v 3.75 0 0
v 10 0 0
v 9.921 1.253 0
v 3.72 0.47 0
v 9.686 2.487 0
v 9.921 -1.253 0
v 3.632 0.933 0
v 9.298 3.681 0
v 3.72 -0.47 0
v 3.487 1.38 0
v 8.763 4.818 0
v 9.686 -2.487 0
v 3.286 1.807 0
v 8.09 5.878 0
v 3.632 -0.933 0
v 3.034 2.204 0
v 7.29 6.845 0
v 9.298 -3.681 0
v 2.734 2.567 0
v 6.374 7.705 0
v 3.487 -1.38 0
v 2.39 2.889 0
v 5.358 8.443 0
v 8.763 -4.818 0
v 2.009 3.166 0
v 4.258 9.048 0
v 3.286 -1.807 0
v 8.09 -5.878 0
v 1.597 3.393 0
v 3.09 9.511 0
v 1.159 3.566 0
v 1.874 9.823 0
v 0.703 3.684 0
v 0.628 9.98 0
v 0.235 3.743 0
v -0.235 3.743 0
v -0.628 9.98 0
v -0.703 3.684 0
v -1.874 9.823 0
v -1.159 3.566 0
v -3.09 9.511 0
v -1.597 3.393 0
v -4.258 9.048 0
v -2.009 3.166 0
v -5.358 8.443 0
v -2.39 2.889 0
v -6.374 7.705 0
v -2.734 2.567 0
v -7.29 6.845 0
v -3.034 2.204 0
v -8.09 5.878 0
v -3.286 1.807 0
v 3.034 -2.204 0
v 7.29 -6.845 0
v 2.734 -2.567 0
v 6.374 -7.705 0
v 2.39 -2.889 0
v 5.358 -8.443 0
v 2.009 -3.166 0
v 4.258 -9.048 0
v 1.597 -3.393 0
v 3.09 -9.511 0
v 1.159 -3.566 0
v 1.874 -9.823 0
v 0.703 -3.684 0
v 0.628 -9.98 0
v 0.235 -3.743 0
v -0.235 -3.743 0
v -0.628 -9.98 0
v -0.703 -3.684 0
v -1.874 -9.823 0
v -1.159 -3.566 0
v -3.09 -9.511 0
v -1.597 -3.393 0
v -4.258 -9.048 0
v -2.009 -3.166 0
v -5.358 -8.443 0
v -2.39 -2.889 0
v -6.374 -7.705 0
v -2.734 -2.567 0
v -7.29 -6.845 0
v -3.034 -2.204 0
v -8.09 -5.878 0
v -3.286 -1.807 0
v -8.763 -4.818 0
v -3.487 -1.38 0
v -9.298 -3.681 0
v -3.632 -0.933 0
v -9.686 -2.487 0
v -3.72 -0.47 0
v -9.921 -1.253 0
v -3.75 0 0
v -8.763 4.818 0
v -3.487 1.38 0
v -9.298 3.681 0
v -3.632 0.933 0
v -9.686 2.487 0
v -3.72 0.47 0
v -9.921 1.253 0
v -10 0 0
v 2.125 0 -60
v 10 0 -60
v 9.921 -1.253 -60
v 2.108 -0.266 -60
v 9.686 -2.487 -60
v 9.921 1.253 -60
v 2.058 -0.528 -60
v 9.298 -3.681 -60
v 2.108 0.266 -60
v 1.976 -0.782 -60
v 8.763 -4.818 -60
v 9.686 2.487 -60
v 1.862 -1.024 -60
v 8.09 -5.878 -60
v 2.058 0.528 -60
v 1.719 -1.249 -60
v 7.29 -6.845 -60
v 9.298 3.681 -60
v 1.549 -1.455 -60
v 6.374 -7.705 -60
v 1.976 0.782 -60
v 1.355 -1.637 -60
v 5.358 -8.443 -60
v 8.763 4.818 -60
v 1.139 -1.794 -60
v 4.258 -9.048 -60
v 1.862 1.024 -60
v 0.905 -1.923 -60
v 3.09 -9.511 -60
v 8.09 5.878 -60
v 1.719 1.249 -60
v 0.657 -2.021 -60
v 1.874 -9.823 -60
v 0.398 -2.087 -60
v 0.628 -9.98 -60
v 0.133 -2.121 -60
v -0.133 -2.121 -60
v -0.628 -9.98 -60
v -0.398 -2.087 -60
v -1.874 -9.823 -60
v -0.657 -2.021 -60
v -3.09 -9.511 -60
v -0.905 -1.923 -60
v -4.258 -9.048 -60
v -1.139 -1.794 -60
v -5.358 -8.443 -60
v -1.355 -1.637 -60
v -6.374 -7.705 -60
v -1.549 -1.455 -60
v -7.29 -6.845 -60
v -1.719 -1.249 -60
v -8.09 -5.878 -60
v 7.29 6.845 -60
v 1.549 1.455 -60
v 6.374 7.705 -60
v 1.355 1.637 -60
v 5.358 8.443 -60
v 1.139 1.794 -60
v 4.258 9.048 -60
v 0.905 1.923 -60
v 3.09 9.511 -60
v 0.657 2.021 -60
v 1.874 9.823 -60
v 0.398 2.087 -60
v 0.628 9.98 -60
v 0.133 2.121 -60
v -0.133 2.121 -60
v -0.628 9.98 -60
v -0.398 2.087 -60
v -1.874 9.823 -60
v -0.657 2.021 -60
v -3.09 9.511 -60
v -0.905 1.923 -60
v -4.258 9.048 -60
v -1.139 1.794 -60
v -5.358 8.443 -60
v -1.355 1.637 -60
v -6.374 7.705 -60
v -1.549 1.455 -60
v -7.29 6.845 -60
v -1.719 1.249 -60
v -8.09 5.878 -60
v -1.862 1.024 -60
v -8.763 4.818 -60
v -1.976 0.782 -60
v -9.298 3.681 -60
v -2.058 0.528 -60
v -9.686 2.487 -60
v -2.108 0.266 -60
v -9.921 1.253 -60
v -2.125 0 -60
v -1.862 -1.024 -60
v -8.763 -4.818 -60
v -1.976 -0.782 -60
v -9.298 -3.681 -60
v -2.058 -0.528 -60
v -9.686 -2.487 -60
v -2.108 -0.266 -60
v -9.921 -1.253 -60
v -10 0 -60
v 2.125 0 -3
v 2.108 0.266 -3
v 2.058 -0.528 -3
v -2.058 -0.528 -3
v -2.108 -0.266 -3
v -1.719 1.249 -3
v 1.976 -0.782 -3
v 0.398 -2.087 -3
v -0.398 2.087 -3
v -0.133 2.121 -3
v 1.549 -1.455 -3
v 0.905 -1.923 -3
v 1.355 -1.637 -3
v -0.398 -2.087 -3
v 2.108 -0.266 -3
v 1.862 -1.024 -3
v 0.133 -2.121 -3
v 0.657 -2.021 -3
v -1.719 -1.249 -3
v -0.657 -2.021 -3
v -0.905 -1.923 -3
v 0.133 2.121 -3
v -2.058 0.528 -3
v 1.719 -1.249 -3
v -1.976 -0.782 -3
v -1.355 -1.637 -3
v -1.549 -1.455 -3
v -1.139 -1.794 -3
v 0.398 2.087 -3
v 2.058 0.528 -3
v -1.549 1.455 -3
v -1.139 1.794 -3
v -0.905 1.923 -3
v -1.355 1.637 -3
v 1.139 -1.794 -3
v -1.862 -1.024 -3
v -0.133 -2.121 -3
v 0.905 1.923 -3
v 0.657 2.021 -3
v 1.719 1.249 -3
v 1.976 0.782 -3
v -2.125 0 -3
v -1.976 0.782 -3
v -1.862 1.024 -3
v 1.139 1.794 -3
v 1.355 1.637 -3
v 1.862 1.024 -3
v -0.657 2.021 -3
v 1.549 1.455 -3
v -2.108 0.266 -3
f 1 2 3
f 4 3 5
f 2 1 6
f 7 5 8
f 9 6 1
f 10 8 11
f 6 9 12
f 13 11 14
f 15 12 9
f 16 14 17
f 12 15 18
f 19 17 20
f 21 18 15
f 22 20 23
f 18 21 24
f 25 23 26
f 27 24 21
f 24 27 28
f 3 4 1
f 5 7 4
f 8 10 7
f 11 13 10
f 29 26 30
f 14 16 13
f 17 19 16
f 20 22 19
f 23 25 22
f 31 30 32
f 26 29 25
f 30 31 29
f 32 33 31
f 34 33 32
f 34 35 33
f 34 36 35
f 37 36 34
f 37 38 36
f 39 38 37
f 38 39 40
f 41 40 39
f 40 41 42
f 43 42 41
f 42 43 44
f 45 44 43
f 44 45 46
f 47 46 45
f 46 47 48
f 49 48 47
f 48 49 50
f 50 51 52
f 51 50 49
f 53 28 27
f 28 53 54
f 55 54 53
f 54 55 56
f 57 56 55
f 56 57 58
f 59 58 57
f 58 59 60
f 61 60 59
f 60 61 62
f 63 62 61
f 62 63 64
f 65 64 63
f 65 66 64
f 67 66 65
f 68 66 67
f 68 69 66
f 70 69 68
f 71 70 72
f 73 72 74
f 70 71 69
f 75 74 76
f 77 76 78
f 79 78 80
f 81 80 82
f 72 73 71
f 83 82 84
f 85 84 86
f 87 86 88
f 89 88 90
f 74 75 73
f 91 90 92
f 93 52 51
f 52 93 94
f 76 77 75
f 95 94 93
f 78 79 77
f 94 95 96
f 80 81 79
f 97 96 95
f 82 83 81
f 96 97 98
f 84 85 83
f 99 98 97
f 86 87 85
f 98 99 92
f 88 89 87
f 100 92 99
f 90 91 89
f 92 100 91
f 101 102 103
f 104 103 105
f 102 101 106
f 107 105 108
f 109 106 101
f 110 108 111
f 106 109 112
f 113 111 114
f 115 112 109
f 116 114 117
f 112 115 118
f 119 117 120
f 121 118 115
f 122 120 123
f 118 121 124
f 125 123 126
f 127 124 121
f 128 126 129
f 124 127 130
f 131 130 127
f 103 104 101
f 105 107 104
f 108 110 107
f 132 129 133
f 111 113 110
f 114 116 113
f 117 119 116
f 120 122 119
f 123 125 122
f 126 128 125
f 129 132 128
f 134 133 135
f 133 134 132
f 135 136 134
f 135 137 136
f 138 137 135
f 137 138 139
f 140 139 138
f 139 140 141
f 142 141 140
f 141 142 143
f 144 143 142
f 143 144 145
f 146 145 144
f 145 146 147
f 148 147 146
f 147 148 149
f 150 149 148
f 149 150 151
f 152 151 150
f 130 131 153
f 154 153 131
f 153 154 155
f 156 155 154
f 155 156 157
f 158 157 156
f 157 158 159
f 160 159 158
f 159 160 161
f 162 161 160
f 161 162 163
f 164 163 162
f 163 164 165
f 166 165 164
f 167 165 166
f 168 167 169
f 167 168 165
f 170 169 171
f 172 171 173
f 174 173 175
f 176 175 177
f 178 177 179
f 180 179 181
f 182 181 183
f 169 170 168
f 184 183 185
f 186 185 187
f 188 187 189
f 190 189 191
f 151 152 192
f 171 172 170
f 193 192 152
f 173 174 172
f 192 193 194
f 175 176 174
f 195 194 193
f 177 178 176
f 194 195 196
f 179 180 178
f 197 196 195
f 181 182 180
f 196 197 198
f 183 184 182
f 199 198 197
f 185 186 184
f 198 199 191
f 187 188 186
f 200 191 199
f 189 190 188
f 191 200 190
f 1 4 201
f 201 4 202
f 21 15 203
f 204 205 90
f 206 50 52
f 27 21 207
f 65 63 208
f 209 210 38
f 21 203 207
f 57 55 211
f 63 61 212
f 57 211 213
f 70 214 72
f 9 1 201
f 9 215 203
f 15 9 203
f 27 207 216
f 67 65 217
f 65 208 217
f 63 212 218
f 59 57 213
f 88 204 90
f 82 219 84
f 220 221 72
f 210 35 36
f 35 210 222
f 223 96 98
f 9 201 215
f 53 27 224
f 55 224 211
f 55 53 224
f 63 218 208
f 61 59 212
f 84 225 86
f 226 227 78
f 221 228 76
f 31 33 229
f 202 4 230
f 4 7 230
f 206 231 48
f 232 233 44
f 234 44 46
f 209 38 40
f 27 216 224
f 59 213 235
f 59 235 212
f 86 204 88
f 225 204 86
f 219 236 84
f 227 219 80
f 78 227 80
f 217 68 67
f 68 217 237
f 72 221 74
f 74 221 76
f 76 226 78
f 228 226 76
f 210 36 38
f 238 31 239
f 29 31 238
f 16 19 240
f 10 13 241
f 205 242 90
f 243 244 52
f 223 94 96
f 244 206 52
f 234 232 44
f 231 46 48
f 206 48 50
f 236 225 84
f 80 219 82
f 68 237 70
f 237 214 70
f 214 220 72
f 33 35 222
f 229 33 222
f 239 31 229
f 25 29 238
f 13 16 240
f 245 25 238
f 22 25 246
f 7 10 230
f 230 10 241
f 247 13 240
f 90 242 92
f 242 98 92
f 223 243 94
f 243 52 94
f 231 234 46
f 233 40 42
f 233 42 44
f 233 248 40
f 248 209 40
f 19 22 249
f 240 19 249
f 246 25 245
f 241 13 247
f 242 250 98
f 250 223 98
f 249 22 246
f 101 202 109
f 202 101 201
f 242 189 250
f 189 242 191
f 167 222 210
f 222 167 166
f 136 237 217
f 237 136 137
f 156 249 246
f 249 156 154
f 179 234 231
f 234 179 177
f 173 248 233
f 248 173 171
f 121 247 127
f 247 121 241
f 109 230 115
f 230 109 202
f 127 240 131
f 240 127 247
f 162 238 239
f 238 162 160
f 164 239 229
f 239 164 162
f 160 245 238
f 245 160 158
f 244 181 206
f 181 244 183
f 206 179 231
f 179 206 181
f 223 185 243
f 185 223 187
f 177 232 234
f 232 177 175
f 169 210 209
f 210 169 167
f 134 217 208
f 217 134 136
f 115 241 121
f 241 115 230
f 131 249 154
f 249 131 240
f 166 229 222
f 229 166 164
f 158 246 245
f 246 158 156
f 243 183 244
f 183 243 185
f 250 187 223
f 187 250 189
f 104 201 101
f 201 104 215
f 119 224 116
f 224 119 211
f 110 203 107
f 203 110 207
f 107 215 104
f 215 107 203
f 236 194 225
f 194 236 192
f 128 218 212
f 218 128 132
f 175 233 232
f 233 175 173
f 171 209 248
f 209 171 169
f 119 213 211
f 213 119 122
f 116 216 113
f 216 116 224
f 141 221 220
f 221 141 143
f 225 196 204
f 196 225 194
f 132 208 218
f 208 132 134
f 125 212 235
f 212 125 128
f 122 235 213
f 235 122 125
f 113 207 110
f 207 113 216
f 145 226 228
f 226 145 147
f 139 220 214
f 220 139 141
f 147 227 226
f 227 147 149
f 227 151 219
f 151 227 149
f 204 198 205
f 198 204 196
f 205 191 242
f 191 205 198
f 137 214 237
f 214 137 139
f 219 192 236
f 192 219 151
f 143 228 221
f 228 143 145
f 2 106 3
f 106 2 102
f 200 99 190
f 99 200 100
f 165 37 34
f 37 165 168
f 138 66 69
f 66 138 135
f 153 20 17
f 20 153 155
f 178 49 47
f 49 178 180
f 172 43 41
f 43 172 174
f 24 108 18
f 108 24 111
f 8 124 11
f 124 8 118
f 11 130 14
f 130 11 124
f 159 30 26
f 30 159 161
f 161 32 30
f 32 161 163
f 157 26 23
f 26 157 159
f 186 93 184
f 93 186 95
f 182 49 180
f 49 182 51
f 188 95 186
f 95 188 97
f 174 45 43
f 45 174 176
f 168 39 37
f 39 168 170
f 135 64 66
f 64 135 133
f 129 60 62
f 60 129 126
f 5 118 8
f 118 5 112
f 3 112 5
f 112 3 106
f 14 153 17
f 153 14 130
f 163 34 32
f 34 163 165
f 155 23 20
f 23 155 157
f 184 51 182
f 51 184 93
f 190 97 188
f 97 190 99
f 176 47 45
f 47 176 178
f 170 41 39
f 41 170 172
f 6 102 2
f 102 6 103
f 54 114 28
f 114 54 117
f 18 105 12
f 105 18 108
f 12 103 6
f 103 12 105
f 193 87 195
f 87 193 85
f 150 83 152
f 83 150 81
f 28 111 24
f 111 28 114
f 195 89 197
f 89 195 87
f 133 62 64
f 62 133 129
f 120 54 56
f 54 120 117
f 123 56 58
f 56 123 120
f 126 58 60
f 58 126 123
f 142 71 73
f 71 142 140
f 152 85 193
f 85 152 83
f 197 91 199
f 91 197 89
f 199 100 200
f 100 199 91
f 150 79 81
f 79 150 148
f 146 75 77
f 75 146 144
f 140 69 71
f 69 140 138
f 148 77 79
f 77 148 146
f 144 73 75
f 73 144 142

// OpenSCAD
$fn = 50;


difference() {
	union() {
		translate(v = [0, 0, -60.0000000000]) {
			cylinder(h = 60, r = 10.0000000000);
		}
		cylinder(h = 0, r = 19.0000000000);
	}
	union() {
		translate(v = [0, 0, 0]) {
			rotate(a = [0, 0, 0]) {
				difference() {
					union() {
						#translate(v = [0, 0, -60.0000000000]) {
							cylinder(h = 60, r = 2.0000000000);
						}
						#translate(v = [0, 0, -3]) {
							cylinder(h = 3, r1 = 2.1250000000, r2 = 3.7500000000);
						}
						#translate(v = [0, 0, -60.0000000000]) {
							cylinder(h = 60, r = 2.1250000000);
						}
						#translate(v = [0, 0, -60.0000000000]) {
							cylinder(h = 60, r = 2.0000000000);
						}
					}
					union();
				}
			}
		}
	}
}
